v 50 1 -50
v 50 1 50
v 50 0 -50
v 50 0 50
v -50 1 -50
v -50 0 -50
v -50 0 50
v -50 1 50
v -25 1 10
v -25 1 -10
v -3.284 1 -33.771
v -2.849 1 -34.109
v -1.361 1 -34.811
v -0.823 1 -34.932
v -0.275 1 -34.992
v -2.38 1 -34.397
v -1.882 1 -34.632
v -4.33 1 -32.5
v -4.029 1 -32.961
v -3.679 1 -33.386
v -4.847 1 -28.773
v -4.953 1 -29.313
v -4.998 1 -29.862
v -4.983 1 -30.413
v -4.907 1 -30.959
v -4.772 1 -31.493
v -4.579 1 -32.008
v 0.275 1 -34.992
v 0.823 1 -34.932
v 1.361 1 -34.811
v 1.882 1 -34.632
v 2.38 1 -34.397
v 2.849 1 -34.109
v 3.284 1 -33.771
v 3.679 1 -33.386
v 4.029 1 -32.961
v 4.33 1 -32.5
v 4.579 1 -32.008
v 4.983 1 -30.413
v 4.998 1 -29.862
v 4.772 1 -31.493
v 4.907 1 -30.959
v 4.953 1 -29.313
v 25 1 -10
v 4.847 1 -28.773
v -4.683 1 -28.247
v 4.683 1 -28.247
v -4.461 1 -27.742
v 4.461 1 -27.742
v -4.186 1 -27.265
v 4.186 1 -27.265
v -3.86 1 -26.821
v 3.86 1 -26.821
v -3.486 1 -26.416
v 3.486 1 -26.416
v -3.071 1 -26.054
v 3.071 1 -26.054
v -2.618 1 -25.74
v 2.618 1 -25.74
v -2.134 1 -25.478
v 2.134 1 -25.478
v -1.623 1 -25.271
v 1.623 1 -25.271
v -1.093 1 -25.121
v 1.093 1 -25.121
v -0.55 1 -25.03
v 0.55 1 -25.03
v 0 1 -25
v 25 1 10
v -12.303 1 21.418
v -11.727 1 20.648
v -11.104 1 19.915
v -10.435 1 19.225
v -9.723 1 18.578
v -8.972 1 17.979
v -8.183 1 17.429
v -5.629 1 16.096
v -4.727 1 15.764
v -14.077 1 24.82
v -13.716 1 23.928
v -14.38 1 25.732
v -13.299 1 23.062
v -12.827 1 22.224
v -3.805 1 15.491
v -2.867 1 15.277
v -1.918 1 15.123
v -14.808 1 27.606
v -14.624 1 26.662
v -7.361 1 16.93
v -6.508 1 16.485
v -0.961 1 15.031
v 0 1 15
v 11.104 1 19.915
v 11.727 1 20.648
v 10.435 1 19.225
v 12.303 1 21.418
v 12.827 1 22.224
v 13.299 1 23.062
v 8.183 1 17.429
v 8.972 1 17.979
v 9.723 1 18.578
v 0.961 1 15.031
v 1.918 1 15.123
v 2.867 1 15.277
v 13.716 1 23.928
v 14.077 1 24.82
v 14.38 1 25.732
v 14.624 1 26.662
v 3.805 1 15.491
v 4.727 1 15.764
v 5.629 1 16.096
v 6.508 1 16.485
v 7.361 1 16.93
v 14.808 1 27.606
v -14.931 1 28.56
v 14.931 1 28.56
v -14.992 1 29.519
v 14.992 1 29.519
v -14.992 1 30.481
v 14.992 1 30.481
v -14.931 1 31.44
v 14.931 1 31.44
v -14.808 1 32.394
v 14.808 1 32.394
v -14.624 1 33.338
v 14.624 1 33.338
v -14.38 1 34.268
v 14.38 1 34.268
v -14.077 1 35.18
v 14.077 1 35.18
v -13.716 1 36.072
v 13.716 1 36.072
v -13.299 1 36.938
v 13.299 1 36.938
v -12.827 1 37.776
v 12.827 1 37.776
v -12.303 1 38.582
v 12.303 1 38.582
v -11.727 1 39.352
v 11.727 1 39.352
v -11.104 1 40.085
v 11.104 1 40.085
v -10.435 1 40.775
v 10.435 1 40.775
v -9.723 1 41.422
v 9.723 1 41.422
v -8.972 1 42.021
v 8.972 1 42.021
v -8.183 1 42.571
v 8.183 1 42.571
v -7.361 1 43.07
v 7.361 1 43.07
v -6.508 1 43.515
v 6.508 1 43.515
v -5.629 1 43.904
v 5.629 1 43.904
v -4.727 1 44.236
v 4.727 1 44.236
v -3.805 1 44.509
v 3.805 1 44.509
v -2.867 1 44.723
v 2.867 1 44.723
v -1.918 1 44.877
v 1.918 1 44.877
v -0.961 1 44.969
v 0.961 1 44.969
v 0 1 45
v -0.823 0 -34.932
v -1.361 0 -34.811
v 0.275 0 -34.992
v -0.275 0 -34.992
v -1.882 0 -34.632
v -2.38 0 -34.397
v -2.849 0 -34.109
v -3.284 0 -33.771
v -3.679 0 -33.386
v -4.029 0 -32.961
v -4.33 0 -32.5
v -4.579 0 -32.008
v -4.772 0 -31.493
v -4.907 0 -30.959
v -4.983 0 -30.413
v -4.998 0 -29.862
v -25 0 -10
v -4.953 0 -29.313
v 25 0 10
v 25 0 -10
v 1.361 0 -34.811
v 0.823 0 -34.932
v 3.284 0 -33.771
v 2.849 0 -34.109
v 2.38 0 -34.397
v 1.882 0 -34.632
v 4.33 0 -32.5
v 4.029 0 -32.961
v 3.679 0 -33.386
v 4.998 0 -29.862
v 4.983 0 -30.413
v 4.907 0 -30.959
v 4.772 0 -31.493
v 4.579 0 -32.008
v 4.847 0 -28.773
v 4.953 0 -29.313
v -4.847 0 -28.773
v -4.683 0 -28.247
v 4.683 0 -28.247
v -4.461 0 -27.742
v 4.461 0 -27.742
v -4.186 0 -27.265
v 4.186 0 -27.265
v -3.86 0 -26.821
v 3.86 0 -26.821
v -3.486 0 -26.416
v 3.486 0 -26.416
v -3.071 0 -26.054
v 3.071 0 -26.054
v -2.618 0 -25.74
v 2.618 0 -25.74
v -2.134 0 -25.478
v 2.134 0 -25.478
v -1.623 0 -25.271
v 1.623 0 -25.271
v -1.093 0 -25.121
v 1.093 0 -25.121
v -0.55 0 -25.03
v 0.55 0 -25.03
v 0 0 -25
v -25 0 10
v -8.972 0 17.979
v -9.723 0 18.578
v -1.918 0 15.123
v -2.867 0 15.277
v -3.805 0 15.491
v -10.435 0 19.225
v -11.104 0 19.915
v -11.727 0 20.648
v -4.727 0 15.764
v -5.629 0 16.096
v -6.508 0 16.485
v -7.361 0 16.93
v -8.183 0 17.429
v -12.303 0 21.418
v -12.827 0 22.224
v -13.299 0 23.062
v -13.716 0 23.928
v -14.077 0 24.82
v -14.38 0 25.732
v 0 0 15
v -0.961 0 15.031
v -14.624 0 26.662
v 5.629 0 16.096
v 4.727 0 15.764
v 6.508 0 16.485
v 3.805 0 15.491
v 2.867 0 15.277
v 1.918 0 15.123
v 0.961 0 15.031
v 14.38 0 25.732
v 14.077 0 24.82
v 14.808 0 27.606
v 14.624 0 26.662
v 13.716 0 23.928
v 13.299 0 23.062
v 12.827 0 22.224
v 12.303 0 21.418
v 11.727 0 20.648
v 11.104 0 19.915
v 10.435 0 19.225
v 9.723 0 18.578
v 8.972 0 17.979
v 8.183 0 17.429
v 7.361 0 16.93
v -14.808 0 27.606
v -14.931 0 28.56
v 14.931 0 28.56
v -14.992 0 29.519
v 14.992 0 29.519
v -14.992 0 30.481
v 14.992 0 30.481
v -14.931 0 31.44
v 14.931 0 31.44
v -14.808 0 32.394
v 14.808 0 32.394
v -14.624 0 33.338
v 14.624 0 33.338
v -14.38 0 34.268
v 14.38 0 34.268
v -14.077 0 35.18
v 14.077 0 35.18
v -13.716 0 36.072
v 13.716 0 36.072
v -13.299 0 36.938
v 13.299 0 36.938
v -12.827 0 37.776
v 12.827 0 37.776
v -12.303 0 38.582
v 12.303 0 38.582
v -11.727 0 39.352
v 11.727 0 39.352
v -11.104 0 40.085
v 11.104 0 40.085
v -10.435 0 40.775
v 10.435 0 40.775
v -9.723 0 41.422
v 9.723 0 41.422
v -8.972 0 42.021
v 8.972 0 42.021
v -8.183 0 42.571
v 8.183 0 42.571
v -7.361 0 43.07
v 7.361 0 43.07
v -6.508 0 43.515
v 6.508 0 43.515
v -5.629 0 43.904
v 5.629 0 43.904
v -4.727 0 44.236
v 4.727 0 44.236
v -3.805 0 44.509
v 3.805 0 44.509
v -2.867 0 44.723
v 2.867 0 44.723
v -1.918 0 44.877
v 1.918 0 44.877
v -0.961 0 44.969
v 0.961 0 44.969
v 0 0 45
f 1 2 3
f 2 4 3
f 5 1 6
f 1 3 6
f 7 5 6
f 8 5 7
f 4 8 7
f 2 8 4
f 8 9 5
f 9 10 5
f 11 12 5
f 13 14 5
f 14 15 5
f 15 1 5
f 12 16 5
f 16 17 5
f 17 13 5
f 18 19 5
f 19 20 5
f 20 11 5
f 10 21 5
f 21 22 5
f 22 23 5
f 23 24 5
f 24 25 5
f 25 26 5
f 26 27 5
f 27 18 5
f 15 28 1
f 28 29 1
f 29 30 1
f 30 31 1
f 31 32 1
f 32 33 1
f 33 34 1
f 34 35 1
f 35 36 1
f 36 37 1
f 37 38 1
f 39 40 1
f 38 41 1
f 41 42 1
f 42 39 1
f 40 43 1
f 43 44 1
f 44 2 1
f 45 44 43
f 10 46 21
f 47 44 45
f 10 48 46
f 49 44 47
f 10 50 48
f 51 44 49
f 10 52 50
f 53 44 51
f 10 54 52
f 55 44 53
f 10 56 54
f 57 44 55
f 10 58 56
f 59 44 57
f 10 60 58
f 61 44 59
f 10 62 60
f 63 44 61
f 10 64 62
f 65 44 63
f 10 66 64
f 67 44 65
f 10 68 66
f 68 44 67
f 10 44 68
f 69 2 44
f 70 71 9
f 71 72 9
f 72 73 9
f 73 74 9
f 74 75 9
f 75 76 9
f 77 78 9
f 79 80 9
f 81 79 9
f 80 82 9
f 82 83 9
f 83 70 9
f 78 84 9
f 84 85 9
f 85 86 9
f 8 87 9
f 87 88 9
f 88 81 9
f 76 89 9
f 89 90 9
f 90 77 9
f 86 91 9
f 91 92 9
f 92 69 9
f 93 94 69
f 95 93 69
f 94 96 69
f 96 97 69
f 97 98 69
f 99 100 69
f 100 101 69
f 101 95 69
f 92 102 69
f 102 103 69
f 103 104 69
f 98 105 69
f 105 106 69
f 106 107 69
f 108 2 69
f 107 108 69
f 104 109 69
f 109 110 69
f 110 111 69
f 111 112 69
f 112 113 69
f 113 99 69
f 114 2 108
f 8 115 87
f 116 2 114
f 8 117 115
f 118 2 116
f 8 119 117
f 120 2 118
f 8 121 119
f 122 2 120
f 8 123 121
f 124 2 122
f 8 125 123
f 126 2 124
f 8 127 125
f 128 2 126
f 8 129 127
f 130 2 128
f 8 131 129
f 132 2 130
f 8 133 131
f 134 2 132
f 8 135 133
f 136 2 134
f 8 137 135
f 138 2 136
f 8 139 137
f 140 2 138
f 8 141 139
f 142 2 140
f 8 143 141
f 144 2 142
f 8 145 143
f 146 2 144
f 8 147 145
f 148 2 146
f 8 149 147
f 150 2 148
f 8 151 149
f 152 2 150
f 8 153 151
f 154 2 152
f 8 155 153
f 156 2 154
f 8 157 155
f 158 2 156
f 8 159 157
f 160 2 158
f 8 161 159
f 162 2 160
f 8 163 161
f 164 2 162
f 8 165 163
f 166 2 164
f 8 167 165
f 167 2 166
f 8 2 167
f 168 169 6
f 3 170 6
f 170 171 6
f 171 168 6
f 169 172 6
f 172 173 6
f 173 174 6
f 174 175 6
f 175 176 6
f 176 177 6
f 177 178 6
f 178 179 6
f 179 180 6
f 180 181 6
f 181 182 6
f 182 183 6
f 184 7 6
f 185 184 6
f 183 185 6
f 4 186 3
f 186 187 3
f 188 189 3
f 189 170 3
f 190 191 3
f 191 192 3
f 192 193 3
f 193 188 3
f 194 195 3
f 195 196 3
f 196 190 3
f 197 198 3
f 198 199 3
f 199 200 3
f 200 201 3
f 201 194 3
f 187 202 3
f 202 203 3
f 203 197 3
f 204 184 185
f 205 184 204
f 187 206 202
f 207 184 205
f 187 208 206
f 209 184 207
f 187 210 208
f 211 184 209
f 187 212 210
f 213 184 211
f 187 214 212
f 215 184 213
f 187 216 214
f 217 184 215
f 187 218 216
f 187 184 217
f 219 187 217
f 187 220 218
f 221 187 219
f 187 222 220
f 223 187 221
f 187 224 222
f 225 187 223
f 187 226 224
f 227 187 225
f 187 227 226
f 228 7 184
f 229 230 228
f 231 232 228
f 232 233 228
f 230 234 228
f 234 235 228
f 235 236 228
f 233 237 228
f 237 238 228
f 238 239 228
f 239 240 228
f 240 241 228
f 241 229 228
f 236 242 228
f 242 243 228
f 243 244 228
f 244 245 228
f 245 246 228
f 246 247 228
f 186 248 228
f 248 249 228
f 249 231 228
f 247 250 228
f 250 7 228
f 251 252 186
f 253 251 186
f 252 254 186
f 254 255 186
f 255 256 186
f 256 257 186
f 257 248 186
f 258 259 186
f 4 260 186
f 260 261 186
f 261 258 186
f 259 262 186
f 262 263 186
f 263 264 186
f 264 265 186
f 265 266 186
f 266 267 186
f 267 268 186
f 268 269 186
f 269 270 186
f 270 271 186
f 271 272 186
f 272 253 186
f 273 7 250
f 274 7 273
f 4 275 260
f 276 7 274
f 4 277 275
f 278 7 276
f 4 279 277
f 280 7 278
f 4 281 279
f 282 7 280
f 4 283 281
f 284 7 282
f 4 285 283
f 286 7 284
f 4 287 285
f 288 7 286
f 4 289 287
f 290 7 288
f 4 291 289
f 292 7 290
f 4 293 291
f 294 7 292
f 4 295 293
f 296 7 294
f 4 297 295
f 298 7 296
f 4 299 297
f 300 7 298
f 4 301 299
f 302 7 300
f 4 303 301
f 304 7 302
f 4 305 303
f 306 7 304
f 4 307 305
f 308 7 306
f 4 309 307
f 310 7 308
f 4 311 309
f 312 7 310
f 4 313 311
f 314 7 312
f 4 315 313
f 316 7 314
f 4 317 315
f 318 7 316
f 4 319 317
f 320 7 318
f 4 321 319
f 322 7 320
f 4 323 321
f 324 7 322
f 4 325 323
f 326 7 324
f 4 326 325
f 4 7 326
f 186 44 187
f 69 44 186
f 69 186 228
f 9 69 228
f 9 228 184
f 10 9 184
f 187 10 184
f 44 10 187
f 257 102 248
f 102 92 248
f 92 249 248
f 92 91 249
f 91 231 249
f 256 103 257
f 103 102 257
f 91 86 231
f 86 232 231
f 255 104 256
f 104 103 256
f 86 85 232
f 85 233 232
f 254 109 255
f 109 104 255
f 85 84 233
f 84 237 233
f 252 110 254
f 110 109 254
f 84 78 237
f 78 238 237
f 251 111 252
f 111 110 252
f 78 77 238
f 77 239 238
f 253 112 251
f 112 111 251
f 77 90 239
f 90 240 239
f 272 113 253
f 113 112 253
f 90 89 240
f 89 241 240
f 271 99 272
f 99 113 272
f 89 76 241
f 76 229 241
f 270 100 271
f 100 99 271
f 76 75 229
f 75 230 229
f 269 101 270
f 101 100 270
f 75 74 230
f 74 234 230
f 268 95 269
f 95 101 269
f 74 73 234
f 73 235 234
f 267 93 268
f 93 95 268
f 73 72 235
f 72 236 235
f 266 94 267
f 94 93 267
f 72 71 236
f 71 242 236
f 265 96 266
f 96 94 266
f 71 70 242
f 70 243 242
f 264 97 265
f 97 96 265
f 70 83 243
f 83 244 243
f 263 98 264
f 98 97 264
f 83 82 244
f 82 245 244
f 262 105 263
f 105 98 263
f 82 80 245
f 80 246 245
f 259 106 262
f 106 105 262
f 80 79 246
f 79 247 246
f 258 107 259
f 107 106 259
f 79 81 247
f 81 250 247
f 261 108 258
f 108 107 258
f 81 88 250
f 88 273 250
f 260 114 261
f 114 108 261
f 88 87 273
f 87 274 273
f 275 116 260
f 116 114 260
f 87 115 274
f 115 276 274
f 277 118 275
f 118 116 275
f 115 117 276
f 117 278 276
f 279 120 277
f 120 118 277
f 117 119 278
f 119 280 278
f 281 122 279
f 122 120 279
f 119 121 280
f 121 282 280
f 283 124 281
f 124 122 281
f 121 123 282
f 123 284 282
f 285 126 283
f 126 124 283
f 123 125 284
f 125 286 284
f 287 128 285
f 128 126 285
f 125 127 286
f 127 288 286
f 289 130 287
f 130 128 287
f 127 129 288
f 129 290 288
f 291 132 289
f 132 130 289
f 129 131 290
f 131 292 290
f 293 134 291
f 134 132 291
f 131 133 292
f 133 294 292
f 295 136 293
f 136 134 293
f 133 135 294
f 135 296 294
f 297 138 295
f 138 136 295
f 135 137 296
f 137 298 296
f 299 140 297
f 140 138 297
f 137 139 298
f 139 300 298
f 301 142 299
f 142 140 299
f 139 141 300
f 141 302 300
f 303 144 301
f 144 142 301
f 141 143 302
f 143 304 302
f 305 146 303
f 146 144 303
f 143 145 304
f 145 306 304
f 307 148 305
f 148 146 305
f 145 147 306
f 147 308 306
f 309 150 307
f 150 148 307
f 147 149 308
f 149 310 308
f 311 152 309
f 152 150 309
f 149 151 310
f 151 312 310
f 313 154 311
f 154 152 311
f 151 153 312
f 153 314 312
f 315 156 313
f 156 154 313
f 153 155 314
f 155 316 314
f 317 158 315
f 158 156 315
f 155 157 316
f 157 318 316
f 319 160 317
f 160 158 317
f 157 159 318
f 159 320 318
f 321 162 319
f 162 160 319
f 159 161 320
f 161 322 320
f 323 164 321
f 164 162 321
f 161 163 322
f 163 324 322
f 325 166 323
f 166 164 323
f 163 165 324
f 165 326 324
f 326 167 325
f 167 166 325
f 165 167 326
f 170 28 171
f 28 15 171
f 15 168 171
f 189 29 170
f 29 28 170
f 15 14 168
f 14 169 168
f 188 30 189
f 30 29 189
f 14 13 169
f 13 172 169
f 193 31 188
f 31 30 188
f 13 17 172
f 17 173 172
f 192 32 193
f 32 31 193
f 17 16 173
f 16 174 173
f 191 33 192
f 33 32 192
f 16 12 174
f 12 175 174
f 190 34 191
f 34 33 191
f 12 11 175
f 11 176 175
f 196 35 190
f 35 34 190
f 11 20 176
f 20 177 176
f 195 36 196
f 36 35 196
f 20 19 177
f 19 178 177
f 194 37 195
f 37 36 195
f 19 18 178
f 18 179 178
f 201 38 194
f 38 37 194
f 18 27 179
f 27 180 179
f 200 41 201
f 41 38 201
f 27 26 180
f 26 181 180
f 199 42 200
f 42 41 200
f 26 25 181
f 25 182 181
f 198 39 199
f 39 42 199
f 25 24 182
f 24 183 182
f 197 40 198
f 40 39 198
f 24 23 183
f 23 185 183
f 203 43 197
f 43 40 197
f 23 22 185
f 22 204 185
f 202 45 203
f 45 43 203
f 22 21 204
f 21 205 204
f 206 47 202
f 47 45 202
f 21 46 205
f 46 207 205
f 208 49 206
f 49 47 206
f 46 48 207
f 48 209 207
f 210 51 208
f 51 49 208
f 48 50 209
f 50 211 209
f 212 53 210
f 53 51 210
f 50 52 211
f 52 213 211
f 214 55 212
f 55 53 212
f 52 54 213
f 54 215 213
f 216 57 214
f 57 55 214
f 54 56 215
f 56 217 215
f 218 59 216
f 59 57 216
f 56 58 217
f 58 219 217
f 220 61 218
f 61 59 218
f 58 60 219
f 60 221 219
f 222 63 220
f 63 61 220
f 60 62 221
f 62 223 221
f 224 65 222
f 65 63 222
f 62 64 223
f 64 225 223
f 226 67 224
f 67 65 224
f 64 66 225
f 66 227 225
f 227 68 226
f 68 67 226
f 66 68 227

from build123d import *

# Parameters (mm, degrees)
SKETCH1_W           = 100
SKETCH1_H           = 100
BOSS_EXTRUDE1_DEPTH = 1
SKETCH2_W           = 50
SKETCH2_H           = 20
CUT_EXTRUDE1_DEPTH  = 1
SKETCH3_R           = 5
SKETCH3_R_2         = 15
CUT_EXTRUDE2_DEPTH  = 1


with BuildPart() as part:
    # Sketch1 → Boss-Extrude1 (new body)
    with BuildSketch(Plane(origin=(0, 0, 0), x_dir=(1, 0, 0), z_dir=(0, 1, 0))):
        Rectangle(SKETCH1_W, SKETCH1_H)
    extrude(amount=BOSS_EXTRUDE1_DEPTH)

    # Sketch2 → Cut-Extrude1 (cut)
    with BuildSketch(Plane(origin=(0, 1, 0), x_dir=(1, 0, 0), z_dir=(0, 1, 0))):
        Rectangle(SKETCH2_W, SKETCH2_H)
    extrude(amount=-CUT_EXTRUDE1_DEPTH, mode=Mode.SUBTRACT)

    # Sketch3 → Cut-Extrude2 (cut)
    with BuildSketch(Plane(origin=(0, 1, 0), x_dir=(1, 0, 0), z_dir=(0, 1, 0))):
        with Locations(Location((0, 30, 0), (0, 0, 270))):
            Circle(SKETCH3_R)
        with Locations(Location((0, -30, 0), (0, 0, 270))):
            Circle(SKETCH3_R_2)
    extrude(amount=-CUT_EXTRUDE2_DEPTH, mode=Mode.SUBTRACT)


solid = part.part
